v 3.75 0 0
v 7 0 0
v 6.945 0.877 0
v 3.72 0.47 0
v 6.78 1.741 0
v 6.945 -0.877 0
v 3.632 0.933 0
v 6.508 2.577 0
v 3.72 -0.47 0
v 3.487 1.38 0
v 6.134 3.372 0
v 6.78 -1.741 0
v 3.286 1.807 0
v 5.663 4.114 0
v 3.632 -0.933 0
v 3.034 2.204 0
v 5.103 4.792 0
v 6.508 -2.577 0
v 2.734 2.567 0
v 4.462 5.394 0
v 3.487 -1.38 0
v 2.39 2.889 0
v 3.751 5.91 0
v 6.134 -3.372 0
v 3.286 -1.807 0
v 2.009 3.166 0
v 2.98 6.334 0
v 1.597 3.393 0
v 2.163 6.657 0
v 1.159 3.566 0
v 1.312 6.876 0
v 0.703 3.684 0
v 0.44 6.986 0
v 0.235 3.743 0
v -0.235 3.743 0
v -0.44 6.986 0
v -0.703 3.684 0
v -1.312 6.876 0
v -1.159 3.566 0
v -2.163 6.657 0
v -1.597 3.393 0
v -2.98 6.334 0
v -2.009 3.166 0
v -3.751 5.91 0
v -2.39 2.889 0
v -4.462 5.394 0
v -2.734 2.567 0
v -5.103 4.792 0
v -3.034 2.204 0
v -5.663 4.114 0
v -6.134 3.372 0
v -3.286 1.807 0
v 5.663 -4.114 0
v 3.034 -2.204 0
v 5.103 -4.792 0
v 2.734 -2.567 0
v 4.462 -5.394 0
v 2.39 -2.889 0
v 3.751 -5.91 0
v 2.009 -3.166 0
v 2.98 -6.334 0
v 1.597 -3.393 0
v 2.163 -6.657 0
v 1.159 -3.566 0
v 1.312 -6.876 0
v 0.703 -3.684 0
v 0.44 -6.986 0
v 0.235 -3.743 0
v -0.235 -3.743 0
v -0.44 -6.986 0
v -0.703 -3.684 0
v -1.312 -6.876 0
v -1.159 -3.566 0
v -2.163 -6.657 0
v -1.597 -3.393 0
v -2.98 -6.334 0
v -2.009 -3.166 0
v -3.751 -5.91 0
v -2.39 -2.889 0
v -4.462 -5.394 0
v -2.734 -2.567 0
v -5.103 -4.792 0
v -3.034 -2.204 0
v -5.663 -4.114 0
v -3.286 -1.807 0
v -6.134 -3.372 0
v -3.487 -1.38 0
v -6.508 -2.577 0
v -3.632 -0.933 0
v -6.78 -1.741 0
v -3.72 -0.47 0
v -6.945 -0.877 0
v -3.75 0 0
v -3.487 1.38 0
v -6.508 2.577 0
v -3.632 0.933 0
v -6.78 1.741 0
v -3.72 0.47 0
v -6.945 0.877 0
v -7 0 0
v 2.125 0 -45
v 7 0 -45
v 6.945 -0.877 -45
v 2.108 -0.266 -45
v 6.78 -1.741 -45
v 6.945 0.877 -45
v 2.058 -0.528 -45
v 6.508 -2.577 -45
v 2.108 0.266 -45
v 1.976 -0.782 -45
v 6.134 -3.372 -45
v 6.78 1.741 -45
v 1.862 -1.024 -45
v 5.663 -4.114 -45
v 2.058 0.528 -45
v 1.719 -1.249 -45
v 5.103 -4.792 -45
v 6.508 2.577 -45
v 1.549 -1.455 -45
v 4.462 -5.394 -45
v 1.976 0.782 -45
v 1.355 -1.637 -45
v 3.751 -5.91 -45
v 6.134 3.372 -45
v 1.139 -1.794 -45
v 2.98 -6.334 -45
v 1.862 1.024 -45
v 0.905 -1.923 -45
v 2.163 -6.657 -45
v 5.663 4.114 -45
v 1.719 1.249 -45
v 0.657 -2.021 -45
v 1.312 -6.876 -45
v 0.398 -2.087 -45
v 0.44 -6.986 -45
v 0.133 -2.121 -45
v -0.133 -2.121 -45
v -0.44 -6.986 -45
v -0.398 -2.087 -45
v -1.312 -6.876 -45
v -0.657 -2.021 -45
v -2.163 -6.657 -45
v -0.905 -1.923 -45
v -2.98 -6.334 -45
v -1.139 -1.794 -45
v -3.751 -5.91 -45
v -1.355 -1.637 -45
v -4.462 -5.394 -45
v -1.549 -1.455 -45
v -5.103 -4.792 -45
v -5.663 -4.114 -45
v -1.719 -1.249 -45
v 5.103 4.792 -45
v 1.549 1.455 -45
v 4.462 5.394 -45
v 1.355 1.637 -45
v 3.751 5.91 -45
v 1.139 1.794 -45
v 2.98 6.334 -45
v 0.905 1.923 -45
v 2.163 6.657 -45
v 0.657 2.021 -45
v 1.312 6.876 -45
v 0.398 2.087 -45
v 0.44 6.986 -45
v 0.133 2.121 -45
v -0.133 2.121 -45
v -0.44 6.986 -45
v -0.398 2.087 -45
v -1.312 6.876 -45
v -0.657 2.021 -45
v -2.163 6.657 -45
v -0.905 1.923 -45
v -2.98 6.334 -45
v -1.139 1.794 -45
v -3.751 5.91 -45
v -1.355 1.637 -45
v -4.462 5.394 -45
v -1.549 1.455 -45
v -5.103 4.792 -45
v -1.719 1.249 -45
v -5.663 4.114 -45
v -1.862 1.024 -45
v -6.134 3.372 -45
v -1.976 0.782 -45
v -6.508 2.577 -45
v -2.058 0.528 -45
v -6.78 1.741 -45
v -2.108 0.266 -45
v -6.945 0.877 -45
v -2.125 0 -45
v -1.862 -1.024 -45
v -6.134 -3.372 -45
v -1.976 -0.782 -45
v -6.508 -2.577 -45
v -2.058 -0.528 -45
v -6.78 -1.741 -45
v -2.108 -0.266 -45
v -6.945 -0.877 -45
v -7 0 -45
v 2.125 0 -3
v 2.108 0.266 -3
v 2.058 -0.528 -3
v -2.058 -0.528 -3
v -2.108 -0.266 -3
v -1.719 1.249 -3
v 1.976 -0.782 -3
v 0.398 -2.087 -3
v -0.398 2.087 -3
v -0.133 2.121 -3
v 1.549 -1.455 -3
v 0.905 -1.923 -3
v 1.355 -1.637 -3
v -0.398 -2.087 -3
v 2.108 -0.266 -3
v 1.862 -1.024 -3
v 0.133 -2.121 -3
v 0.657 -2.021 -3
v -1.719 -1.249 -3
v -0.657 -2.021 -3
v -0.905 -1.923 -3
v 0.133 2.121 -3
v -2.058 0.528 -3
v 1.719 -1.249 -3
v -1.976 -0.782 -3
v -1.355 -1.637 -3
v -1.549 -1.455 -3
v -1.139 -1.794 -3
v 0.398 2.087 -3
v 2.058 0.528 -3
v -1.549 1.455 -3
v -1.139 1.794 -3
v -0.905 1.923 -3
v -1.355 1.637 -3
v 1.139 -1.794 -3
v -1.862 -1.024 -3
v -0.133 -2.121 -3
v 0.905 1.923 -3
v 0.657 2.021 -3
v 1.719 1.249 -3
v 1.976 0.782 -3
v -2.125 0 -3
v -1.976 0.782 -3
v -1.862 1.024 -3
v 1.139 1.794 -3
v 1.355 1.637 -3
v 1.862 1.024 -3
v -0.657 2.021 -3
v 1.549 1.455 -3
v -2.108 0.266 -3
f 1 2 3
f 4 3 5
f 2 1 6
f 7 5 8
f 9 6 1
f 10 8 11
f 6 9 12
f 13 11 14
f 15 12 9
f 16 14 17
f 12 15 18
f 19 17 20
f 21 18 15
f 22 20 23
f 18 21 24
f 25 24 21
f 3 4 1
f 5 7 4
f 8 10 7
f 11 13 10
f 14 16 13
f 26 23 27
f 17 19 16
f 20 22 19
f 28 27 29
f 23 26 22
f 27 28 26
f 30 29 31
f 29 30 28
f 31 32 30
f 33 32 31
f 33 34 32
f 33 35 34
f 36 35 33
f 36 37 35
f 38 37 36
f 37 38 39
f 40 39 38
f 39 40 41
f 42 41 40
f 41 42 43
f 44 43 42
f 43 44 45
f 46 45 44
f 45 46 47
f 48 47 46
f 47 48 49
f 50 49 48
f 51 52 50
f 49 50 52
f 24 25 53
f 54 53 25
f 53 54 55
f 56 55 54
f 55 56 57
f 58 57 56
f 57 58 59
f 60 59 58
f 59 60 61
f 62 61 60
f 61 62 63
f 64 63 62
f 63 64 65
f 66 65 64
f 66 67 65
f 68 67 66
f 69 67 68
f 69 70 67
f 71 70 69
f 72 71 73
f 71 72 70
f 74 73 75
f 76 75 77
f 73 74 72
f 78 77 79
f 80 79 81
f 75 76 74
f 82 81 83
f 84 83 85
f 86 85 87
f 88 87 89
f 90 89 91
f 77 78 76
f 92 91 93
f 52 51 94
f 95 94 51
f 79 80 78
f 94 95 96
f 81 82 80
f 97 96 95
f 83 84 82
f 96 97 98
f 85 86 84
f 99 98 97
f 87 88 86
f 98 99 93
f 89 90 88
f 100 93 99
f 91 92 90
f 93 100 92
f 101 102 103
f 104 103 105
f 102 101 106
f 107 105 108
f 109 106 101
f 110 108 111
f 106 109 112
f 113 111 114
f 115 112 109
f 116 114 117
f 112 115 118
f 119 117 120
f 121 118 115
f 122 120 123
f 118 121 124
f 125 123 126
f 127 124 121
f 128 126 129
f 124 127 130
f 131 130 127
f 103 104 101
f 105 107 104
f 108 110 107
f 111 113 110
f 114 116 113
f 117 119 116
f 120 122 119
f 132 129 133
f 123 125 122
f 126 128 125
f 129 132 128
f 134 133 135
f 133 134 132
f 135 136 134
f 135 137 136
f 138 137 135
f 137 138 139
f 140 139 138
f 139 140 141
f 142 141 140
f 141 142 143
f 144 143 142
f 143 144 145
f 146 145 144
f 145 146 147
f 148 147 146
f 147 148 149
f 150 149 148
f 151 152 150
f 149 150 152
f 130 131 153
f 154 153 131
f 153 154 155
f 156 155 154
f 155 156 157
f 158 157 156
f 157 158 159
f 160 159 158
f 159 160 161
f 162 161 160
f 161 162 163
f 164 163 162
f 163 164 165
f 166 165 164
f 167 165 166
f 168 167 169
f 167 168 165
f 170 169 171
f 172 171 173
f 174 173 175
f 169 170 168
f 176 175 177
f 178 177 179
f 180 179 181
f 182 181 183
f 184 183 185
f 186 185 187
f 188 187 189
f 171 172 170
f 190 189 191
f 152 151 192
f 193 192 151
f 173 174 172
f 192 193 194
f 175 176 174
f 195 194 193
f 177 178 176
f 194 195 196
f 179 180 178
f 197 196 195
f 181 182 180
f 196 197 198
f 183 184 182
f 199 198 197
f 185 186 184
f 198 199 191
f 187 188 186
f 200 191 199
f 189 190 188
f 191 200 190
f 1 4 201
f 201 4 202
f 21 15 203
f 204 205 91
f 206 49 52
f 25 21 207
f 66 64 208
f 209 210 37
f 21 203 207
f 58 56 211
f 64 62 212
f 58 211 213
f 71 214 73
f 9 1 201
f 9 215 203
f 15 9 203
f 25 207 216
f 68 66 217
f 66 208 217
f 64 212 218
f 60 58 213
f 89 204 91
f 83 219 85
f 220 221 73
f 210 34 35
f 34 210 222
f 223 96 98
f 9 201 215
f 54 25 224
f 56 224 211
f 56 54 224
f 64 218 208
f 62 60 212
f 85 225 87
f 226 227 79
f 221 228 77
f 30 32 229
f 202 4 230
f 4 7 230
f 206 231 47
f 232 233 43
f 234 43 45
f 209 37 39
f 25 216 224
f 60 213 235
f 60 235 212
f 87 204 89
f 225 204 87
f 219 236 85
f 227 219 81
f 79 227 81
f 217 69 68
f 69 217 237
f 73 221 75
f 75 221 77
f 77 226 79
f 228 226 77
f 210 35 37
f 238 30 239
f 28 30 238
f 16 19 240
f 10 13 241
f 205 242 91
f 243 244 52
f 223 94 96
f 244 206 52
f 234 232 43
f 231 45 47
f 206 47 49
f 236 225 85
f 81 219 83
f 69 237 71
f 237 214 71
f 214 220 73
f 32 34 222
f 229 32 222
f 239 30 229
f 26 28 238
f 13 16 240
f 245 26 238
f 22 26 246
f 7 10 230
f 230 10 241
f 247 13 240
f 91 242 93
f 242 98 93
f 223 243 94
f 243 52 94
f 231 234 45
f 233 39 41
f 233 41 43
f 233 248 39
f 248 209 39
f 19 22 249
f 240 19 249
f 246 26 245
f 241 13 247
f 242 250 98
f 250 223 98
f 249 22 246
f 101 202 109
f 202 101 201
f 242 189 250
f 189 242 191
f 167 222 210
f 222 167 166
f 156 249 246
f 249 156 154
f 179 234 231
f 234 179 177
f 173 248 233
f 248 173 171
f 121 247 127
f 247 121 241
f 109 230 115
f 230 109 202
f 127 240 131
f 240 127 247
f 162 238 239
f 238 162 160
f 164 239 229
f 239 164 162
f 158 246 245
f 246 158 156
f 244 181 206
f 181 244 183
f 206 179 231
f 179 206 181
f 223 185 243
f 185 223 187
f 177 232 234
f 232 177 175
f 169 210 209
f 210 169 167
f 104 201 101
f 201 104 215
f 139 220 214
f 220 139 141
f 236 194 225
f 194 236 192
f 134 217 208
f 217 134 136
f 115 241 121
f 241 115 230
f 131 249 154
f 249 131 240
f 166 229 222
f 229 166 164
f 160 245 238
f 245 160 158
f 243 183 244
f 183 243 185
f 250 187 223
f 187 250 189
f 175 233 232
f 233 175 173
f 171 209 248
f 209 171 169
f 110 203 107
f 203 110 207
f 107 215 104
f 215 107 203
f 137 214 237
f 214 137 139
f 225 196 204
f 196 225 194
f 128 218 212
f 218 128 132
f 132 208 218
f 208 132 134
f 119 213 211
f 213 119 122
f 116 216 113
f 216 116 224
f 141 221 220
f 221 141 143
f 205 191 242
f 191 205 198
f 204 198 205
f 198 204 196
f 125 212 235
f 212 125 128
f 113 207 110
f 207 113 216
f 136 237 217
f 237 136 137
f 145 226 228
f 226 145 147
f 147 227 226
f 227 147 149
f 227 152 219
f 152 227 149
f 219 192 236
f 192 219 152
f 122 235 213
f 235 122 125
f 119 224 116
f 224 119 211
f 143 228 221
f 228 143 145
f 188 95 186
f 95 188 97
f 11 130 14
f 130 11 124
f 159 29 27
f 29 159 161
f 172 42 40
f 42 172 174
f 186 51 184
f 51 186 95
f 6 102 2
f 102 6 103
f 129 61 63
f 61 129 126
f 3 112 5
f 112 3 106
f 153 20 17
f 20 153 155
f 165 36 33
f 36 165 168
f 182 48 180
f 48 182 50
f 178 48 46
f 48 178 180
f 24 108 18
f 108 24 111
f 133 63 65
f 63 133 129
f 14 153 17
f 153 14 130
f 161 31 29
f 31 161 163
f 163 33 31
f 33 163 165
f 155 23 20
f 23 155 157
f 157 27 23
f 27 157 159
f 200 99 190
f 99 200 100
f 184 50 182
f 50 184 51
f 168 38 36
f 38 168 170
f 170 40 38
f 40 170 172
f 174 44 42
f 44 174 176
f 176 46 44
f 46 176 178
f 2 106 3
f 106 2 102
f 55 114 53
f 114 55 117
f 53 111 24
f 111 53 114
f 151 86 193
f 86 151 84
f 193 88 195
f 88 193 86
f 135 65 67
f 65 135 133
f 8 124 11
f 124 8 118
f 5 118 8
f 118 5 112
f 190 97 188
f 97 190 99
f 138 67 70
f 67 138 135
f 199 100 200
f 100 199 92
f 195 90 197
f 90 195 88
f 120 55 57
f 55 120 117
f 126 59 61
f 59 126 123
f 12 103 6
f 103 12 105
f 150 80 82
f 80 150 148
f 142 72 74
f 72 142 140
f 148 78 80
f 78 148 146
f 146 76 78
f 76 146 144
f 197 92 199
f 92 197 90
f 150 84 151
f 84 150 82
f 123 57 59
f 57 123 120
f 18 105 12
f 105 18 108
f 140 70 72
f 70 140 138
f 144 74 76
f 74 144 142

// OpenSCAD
$fn = 50;


difference() {
	union() {
		translate(v = [0, 0, -45.0000000000]) {
			cylinder(h = 45, r = 7.0000000000);
		}
		cylinder(h = 0, r = 13.0000000000);
	}
	union() {
		translate(v = [0, 0, 0]) {
			rotate(a = [0, 0, 0]) {
				difference() {
					union() {
						#translate(v = [0, 0, -45.0000000000]) {
							cylinder(h = 45, r = 2.0000000000);
						}
						#translate(v = [0, 0, -3]) {
							cylinder(h = 3, r = 7.0000000000, r1 = 2.1250000000, r2 = 3.7500000000);
						}
						#translate(v = [0, 0, -45.0000000000]) {
							cylinder(h = 45, r = 2.1250000000);
						}
						#translate(v = [0, 0, -45.0000000000]) {
							cylinder(h = 45, r = 2.0000000000);
						}
					}
					union();
				}
			}
		}
	}
}
